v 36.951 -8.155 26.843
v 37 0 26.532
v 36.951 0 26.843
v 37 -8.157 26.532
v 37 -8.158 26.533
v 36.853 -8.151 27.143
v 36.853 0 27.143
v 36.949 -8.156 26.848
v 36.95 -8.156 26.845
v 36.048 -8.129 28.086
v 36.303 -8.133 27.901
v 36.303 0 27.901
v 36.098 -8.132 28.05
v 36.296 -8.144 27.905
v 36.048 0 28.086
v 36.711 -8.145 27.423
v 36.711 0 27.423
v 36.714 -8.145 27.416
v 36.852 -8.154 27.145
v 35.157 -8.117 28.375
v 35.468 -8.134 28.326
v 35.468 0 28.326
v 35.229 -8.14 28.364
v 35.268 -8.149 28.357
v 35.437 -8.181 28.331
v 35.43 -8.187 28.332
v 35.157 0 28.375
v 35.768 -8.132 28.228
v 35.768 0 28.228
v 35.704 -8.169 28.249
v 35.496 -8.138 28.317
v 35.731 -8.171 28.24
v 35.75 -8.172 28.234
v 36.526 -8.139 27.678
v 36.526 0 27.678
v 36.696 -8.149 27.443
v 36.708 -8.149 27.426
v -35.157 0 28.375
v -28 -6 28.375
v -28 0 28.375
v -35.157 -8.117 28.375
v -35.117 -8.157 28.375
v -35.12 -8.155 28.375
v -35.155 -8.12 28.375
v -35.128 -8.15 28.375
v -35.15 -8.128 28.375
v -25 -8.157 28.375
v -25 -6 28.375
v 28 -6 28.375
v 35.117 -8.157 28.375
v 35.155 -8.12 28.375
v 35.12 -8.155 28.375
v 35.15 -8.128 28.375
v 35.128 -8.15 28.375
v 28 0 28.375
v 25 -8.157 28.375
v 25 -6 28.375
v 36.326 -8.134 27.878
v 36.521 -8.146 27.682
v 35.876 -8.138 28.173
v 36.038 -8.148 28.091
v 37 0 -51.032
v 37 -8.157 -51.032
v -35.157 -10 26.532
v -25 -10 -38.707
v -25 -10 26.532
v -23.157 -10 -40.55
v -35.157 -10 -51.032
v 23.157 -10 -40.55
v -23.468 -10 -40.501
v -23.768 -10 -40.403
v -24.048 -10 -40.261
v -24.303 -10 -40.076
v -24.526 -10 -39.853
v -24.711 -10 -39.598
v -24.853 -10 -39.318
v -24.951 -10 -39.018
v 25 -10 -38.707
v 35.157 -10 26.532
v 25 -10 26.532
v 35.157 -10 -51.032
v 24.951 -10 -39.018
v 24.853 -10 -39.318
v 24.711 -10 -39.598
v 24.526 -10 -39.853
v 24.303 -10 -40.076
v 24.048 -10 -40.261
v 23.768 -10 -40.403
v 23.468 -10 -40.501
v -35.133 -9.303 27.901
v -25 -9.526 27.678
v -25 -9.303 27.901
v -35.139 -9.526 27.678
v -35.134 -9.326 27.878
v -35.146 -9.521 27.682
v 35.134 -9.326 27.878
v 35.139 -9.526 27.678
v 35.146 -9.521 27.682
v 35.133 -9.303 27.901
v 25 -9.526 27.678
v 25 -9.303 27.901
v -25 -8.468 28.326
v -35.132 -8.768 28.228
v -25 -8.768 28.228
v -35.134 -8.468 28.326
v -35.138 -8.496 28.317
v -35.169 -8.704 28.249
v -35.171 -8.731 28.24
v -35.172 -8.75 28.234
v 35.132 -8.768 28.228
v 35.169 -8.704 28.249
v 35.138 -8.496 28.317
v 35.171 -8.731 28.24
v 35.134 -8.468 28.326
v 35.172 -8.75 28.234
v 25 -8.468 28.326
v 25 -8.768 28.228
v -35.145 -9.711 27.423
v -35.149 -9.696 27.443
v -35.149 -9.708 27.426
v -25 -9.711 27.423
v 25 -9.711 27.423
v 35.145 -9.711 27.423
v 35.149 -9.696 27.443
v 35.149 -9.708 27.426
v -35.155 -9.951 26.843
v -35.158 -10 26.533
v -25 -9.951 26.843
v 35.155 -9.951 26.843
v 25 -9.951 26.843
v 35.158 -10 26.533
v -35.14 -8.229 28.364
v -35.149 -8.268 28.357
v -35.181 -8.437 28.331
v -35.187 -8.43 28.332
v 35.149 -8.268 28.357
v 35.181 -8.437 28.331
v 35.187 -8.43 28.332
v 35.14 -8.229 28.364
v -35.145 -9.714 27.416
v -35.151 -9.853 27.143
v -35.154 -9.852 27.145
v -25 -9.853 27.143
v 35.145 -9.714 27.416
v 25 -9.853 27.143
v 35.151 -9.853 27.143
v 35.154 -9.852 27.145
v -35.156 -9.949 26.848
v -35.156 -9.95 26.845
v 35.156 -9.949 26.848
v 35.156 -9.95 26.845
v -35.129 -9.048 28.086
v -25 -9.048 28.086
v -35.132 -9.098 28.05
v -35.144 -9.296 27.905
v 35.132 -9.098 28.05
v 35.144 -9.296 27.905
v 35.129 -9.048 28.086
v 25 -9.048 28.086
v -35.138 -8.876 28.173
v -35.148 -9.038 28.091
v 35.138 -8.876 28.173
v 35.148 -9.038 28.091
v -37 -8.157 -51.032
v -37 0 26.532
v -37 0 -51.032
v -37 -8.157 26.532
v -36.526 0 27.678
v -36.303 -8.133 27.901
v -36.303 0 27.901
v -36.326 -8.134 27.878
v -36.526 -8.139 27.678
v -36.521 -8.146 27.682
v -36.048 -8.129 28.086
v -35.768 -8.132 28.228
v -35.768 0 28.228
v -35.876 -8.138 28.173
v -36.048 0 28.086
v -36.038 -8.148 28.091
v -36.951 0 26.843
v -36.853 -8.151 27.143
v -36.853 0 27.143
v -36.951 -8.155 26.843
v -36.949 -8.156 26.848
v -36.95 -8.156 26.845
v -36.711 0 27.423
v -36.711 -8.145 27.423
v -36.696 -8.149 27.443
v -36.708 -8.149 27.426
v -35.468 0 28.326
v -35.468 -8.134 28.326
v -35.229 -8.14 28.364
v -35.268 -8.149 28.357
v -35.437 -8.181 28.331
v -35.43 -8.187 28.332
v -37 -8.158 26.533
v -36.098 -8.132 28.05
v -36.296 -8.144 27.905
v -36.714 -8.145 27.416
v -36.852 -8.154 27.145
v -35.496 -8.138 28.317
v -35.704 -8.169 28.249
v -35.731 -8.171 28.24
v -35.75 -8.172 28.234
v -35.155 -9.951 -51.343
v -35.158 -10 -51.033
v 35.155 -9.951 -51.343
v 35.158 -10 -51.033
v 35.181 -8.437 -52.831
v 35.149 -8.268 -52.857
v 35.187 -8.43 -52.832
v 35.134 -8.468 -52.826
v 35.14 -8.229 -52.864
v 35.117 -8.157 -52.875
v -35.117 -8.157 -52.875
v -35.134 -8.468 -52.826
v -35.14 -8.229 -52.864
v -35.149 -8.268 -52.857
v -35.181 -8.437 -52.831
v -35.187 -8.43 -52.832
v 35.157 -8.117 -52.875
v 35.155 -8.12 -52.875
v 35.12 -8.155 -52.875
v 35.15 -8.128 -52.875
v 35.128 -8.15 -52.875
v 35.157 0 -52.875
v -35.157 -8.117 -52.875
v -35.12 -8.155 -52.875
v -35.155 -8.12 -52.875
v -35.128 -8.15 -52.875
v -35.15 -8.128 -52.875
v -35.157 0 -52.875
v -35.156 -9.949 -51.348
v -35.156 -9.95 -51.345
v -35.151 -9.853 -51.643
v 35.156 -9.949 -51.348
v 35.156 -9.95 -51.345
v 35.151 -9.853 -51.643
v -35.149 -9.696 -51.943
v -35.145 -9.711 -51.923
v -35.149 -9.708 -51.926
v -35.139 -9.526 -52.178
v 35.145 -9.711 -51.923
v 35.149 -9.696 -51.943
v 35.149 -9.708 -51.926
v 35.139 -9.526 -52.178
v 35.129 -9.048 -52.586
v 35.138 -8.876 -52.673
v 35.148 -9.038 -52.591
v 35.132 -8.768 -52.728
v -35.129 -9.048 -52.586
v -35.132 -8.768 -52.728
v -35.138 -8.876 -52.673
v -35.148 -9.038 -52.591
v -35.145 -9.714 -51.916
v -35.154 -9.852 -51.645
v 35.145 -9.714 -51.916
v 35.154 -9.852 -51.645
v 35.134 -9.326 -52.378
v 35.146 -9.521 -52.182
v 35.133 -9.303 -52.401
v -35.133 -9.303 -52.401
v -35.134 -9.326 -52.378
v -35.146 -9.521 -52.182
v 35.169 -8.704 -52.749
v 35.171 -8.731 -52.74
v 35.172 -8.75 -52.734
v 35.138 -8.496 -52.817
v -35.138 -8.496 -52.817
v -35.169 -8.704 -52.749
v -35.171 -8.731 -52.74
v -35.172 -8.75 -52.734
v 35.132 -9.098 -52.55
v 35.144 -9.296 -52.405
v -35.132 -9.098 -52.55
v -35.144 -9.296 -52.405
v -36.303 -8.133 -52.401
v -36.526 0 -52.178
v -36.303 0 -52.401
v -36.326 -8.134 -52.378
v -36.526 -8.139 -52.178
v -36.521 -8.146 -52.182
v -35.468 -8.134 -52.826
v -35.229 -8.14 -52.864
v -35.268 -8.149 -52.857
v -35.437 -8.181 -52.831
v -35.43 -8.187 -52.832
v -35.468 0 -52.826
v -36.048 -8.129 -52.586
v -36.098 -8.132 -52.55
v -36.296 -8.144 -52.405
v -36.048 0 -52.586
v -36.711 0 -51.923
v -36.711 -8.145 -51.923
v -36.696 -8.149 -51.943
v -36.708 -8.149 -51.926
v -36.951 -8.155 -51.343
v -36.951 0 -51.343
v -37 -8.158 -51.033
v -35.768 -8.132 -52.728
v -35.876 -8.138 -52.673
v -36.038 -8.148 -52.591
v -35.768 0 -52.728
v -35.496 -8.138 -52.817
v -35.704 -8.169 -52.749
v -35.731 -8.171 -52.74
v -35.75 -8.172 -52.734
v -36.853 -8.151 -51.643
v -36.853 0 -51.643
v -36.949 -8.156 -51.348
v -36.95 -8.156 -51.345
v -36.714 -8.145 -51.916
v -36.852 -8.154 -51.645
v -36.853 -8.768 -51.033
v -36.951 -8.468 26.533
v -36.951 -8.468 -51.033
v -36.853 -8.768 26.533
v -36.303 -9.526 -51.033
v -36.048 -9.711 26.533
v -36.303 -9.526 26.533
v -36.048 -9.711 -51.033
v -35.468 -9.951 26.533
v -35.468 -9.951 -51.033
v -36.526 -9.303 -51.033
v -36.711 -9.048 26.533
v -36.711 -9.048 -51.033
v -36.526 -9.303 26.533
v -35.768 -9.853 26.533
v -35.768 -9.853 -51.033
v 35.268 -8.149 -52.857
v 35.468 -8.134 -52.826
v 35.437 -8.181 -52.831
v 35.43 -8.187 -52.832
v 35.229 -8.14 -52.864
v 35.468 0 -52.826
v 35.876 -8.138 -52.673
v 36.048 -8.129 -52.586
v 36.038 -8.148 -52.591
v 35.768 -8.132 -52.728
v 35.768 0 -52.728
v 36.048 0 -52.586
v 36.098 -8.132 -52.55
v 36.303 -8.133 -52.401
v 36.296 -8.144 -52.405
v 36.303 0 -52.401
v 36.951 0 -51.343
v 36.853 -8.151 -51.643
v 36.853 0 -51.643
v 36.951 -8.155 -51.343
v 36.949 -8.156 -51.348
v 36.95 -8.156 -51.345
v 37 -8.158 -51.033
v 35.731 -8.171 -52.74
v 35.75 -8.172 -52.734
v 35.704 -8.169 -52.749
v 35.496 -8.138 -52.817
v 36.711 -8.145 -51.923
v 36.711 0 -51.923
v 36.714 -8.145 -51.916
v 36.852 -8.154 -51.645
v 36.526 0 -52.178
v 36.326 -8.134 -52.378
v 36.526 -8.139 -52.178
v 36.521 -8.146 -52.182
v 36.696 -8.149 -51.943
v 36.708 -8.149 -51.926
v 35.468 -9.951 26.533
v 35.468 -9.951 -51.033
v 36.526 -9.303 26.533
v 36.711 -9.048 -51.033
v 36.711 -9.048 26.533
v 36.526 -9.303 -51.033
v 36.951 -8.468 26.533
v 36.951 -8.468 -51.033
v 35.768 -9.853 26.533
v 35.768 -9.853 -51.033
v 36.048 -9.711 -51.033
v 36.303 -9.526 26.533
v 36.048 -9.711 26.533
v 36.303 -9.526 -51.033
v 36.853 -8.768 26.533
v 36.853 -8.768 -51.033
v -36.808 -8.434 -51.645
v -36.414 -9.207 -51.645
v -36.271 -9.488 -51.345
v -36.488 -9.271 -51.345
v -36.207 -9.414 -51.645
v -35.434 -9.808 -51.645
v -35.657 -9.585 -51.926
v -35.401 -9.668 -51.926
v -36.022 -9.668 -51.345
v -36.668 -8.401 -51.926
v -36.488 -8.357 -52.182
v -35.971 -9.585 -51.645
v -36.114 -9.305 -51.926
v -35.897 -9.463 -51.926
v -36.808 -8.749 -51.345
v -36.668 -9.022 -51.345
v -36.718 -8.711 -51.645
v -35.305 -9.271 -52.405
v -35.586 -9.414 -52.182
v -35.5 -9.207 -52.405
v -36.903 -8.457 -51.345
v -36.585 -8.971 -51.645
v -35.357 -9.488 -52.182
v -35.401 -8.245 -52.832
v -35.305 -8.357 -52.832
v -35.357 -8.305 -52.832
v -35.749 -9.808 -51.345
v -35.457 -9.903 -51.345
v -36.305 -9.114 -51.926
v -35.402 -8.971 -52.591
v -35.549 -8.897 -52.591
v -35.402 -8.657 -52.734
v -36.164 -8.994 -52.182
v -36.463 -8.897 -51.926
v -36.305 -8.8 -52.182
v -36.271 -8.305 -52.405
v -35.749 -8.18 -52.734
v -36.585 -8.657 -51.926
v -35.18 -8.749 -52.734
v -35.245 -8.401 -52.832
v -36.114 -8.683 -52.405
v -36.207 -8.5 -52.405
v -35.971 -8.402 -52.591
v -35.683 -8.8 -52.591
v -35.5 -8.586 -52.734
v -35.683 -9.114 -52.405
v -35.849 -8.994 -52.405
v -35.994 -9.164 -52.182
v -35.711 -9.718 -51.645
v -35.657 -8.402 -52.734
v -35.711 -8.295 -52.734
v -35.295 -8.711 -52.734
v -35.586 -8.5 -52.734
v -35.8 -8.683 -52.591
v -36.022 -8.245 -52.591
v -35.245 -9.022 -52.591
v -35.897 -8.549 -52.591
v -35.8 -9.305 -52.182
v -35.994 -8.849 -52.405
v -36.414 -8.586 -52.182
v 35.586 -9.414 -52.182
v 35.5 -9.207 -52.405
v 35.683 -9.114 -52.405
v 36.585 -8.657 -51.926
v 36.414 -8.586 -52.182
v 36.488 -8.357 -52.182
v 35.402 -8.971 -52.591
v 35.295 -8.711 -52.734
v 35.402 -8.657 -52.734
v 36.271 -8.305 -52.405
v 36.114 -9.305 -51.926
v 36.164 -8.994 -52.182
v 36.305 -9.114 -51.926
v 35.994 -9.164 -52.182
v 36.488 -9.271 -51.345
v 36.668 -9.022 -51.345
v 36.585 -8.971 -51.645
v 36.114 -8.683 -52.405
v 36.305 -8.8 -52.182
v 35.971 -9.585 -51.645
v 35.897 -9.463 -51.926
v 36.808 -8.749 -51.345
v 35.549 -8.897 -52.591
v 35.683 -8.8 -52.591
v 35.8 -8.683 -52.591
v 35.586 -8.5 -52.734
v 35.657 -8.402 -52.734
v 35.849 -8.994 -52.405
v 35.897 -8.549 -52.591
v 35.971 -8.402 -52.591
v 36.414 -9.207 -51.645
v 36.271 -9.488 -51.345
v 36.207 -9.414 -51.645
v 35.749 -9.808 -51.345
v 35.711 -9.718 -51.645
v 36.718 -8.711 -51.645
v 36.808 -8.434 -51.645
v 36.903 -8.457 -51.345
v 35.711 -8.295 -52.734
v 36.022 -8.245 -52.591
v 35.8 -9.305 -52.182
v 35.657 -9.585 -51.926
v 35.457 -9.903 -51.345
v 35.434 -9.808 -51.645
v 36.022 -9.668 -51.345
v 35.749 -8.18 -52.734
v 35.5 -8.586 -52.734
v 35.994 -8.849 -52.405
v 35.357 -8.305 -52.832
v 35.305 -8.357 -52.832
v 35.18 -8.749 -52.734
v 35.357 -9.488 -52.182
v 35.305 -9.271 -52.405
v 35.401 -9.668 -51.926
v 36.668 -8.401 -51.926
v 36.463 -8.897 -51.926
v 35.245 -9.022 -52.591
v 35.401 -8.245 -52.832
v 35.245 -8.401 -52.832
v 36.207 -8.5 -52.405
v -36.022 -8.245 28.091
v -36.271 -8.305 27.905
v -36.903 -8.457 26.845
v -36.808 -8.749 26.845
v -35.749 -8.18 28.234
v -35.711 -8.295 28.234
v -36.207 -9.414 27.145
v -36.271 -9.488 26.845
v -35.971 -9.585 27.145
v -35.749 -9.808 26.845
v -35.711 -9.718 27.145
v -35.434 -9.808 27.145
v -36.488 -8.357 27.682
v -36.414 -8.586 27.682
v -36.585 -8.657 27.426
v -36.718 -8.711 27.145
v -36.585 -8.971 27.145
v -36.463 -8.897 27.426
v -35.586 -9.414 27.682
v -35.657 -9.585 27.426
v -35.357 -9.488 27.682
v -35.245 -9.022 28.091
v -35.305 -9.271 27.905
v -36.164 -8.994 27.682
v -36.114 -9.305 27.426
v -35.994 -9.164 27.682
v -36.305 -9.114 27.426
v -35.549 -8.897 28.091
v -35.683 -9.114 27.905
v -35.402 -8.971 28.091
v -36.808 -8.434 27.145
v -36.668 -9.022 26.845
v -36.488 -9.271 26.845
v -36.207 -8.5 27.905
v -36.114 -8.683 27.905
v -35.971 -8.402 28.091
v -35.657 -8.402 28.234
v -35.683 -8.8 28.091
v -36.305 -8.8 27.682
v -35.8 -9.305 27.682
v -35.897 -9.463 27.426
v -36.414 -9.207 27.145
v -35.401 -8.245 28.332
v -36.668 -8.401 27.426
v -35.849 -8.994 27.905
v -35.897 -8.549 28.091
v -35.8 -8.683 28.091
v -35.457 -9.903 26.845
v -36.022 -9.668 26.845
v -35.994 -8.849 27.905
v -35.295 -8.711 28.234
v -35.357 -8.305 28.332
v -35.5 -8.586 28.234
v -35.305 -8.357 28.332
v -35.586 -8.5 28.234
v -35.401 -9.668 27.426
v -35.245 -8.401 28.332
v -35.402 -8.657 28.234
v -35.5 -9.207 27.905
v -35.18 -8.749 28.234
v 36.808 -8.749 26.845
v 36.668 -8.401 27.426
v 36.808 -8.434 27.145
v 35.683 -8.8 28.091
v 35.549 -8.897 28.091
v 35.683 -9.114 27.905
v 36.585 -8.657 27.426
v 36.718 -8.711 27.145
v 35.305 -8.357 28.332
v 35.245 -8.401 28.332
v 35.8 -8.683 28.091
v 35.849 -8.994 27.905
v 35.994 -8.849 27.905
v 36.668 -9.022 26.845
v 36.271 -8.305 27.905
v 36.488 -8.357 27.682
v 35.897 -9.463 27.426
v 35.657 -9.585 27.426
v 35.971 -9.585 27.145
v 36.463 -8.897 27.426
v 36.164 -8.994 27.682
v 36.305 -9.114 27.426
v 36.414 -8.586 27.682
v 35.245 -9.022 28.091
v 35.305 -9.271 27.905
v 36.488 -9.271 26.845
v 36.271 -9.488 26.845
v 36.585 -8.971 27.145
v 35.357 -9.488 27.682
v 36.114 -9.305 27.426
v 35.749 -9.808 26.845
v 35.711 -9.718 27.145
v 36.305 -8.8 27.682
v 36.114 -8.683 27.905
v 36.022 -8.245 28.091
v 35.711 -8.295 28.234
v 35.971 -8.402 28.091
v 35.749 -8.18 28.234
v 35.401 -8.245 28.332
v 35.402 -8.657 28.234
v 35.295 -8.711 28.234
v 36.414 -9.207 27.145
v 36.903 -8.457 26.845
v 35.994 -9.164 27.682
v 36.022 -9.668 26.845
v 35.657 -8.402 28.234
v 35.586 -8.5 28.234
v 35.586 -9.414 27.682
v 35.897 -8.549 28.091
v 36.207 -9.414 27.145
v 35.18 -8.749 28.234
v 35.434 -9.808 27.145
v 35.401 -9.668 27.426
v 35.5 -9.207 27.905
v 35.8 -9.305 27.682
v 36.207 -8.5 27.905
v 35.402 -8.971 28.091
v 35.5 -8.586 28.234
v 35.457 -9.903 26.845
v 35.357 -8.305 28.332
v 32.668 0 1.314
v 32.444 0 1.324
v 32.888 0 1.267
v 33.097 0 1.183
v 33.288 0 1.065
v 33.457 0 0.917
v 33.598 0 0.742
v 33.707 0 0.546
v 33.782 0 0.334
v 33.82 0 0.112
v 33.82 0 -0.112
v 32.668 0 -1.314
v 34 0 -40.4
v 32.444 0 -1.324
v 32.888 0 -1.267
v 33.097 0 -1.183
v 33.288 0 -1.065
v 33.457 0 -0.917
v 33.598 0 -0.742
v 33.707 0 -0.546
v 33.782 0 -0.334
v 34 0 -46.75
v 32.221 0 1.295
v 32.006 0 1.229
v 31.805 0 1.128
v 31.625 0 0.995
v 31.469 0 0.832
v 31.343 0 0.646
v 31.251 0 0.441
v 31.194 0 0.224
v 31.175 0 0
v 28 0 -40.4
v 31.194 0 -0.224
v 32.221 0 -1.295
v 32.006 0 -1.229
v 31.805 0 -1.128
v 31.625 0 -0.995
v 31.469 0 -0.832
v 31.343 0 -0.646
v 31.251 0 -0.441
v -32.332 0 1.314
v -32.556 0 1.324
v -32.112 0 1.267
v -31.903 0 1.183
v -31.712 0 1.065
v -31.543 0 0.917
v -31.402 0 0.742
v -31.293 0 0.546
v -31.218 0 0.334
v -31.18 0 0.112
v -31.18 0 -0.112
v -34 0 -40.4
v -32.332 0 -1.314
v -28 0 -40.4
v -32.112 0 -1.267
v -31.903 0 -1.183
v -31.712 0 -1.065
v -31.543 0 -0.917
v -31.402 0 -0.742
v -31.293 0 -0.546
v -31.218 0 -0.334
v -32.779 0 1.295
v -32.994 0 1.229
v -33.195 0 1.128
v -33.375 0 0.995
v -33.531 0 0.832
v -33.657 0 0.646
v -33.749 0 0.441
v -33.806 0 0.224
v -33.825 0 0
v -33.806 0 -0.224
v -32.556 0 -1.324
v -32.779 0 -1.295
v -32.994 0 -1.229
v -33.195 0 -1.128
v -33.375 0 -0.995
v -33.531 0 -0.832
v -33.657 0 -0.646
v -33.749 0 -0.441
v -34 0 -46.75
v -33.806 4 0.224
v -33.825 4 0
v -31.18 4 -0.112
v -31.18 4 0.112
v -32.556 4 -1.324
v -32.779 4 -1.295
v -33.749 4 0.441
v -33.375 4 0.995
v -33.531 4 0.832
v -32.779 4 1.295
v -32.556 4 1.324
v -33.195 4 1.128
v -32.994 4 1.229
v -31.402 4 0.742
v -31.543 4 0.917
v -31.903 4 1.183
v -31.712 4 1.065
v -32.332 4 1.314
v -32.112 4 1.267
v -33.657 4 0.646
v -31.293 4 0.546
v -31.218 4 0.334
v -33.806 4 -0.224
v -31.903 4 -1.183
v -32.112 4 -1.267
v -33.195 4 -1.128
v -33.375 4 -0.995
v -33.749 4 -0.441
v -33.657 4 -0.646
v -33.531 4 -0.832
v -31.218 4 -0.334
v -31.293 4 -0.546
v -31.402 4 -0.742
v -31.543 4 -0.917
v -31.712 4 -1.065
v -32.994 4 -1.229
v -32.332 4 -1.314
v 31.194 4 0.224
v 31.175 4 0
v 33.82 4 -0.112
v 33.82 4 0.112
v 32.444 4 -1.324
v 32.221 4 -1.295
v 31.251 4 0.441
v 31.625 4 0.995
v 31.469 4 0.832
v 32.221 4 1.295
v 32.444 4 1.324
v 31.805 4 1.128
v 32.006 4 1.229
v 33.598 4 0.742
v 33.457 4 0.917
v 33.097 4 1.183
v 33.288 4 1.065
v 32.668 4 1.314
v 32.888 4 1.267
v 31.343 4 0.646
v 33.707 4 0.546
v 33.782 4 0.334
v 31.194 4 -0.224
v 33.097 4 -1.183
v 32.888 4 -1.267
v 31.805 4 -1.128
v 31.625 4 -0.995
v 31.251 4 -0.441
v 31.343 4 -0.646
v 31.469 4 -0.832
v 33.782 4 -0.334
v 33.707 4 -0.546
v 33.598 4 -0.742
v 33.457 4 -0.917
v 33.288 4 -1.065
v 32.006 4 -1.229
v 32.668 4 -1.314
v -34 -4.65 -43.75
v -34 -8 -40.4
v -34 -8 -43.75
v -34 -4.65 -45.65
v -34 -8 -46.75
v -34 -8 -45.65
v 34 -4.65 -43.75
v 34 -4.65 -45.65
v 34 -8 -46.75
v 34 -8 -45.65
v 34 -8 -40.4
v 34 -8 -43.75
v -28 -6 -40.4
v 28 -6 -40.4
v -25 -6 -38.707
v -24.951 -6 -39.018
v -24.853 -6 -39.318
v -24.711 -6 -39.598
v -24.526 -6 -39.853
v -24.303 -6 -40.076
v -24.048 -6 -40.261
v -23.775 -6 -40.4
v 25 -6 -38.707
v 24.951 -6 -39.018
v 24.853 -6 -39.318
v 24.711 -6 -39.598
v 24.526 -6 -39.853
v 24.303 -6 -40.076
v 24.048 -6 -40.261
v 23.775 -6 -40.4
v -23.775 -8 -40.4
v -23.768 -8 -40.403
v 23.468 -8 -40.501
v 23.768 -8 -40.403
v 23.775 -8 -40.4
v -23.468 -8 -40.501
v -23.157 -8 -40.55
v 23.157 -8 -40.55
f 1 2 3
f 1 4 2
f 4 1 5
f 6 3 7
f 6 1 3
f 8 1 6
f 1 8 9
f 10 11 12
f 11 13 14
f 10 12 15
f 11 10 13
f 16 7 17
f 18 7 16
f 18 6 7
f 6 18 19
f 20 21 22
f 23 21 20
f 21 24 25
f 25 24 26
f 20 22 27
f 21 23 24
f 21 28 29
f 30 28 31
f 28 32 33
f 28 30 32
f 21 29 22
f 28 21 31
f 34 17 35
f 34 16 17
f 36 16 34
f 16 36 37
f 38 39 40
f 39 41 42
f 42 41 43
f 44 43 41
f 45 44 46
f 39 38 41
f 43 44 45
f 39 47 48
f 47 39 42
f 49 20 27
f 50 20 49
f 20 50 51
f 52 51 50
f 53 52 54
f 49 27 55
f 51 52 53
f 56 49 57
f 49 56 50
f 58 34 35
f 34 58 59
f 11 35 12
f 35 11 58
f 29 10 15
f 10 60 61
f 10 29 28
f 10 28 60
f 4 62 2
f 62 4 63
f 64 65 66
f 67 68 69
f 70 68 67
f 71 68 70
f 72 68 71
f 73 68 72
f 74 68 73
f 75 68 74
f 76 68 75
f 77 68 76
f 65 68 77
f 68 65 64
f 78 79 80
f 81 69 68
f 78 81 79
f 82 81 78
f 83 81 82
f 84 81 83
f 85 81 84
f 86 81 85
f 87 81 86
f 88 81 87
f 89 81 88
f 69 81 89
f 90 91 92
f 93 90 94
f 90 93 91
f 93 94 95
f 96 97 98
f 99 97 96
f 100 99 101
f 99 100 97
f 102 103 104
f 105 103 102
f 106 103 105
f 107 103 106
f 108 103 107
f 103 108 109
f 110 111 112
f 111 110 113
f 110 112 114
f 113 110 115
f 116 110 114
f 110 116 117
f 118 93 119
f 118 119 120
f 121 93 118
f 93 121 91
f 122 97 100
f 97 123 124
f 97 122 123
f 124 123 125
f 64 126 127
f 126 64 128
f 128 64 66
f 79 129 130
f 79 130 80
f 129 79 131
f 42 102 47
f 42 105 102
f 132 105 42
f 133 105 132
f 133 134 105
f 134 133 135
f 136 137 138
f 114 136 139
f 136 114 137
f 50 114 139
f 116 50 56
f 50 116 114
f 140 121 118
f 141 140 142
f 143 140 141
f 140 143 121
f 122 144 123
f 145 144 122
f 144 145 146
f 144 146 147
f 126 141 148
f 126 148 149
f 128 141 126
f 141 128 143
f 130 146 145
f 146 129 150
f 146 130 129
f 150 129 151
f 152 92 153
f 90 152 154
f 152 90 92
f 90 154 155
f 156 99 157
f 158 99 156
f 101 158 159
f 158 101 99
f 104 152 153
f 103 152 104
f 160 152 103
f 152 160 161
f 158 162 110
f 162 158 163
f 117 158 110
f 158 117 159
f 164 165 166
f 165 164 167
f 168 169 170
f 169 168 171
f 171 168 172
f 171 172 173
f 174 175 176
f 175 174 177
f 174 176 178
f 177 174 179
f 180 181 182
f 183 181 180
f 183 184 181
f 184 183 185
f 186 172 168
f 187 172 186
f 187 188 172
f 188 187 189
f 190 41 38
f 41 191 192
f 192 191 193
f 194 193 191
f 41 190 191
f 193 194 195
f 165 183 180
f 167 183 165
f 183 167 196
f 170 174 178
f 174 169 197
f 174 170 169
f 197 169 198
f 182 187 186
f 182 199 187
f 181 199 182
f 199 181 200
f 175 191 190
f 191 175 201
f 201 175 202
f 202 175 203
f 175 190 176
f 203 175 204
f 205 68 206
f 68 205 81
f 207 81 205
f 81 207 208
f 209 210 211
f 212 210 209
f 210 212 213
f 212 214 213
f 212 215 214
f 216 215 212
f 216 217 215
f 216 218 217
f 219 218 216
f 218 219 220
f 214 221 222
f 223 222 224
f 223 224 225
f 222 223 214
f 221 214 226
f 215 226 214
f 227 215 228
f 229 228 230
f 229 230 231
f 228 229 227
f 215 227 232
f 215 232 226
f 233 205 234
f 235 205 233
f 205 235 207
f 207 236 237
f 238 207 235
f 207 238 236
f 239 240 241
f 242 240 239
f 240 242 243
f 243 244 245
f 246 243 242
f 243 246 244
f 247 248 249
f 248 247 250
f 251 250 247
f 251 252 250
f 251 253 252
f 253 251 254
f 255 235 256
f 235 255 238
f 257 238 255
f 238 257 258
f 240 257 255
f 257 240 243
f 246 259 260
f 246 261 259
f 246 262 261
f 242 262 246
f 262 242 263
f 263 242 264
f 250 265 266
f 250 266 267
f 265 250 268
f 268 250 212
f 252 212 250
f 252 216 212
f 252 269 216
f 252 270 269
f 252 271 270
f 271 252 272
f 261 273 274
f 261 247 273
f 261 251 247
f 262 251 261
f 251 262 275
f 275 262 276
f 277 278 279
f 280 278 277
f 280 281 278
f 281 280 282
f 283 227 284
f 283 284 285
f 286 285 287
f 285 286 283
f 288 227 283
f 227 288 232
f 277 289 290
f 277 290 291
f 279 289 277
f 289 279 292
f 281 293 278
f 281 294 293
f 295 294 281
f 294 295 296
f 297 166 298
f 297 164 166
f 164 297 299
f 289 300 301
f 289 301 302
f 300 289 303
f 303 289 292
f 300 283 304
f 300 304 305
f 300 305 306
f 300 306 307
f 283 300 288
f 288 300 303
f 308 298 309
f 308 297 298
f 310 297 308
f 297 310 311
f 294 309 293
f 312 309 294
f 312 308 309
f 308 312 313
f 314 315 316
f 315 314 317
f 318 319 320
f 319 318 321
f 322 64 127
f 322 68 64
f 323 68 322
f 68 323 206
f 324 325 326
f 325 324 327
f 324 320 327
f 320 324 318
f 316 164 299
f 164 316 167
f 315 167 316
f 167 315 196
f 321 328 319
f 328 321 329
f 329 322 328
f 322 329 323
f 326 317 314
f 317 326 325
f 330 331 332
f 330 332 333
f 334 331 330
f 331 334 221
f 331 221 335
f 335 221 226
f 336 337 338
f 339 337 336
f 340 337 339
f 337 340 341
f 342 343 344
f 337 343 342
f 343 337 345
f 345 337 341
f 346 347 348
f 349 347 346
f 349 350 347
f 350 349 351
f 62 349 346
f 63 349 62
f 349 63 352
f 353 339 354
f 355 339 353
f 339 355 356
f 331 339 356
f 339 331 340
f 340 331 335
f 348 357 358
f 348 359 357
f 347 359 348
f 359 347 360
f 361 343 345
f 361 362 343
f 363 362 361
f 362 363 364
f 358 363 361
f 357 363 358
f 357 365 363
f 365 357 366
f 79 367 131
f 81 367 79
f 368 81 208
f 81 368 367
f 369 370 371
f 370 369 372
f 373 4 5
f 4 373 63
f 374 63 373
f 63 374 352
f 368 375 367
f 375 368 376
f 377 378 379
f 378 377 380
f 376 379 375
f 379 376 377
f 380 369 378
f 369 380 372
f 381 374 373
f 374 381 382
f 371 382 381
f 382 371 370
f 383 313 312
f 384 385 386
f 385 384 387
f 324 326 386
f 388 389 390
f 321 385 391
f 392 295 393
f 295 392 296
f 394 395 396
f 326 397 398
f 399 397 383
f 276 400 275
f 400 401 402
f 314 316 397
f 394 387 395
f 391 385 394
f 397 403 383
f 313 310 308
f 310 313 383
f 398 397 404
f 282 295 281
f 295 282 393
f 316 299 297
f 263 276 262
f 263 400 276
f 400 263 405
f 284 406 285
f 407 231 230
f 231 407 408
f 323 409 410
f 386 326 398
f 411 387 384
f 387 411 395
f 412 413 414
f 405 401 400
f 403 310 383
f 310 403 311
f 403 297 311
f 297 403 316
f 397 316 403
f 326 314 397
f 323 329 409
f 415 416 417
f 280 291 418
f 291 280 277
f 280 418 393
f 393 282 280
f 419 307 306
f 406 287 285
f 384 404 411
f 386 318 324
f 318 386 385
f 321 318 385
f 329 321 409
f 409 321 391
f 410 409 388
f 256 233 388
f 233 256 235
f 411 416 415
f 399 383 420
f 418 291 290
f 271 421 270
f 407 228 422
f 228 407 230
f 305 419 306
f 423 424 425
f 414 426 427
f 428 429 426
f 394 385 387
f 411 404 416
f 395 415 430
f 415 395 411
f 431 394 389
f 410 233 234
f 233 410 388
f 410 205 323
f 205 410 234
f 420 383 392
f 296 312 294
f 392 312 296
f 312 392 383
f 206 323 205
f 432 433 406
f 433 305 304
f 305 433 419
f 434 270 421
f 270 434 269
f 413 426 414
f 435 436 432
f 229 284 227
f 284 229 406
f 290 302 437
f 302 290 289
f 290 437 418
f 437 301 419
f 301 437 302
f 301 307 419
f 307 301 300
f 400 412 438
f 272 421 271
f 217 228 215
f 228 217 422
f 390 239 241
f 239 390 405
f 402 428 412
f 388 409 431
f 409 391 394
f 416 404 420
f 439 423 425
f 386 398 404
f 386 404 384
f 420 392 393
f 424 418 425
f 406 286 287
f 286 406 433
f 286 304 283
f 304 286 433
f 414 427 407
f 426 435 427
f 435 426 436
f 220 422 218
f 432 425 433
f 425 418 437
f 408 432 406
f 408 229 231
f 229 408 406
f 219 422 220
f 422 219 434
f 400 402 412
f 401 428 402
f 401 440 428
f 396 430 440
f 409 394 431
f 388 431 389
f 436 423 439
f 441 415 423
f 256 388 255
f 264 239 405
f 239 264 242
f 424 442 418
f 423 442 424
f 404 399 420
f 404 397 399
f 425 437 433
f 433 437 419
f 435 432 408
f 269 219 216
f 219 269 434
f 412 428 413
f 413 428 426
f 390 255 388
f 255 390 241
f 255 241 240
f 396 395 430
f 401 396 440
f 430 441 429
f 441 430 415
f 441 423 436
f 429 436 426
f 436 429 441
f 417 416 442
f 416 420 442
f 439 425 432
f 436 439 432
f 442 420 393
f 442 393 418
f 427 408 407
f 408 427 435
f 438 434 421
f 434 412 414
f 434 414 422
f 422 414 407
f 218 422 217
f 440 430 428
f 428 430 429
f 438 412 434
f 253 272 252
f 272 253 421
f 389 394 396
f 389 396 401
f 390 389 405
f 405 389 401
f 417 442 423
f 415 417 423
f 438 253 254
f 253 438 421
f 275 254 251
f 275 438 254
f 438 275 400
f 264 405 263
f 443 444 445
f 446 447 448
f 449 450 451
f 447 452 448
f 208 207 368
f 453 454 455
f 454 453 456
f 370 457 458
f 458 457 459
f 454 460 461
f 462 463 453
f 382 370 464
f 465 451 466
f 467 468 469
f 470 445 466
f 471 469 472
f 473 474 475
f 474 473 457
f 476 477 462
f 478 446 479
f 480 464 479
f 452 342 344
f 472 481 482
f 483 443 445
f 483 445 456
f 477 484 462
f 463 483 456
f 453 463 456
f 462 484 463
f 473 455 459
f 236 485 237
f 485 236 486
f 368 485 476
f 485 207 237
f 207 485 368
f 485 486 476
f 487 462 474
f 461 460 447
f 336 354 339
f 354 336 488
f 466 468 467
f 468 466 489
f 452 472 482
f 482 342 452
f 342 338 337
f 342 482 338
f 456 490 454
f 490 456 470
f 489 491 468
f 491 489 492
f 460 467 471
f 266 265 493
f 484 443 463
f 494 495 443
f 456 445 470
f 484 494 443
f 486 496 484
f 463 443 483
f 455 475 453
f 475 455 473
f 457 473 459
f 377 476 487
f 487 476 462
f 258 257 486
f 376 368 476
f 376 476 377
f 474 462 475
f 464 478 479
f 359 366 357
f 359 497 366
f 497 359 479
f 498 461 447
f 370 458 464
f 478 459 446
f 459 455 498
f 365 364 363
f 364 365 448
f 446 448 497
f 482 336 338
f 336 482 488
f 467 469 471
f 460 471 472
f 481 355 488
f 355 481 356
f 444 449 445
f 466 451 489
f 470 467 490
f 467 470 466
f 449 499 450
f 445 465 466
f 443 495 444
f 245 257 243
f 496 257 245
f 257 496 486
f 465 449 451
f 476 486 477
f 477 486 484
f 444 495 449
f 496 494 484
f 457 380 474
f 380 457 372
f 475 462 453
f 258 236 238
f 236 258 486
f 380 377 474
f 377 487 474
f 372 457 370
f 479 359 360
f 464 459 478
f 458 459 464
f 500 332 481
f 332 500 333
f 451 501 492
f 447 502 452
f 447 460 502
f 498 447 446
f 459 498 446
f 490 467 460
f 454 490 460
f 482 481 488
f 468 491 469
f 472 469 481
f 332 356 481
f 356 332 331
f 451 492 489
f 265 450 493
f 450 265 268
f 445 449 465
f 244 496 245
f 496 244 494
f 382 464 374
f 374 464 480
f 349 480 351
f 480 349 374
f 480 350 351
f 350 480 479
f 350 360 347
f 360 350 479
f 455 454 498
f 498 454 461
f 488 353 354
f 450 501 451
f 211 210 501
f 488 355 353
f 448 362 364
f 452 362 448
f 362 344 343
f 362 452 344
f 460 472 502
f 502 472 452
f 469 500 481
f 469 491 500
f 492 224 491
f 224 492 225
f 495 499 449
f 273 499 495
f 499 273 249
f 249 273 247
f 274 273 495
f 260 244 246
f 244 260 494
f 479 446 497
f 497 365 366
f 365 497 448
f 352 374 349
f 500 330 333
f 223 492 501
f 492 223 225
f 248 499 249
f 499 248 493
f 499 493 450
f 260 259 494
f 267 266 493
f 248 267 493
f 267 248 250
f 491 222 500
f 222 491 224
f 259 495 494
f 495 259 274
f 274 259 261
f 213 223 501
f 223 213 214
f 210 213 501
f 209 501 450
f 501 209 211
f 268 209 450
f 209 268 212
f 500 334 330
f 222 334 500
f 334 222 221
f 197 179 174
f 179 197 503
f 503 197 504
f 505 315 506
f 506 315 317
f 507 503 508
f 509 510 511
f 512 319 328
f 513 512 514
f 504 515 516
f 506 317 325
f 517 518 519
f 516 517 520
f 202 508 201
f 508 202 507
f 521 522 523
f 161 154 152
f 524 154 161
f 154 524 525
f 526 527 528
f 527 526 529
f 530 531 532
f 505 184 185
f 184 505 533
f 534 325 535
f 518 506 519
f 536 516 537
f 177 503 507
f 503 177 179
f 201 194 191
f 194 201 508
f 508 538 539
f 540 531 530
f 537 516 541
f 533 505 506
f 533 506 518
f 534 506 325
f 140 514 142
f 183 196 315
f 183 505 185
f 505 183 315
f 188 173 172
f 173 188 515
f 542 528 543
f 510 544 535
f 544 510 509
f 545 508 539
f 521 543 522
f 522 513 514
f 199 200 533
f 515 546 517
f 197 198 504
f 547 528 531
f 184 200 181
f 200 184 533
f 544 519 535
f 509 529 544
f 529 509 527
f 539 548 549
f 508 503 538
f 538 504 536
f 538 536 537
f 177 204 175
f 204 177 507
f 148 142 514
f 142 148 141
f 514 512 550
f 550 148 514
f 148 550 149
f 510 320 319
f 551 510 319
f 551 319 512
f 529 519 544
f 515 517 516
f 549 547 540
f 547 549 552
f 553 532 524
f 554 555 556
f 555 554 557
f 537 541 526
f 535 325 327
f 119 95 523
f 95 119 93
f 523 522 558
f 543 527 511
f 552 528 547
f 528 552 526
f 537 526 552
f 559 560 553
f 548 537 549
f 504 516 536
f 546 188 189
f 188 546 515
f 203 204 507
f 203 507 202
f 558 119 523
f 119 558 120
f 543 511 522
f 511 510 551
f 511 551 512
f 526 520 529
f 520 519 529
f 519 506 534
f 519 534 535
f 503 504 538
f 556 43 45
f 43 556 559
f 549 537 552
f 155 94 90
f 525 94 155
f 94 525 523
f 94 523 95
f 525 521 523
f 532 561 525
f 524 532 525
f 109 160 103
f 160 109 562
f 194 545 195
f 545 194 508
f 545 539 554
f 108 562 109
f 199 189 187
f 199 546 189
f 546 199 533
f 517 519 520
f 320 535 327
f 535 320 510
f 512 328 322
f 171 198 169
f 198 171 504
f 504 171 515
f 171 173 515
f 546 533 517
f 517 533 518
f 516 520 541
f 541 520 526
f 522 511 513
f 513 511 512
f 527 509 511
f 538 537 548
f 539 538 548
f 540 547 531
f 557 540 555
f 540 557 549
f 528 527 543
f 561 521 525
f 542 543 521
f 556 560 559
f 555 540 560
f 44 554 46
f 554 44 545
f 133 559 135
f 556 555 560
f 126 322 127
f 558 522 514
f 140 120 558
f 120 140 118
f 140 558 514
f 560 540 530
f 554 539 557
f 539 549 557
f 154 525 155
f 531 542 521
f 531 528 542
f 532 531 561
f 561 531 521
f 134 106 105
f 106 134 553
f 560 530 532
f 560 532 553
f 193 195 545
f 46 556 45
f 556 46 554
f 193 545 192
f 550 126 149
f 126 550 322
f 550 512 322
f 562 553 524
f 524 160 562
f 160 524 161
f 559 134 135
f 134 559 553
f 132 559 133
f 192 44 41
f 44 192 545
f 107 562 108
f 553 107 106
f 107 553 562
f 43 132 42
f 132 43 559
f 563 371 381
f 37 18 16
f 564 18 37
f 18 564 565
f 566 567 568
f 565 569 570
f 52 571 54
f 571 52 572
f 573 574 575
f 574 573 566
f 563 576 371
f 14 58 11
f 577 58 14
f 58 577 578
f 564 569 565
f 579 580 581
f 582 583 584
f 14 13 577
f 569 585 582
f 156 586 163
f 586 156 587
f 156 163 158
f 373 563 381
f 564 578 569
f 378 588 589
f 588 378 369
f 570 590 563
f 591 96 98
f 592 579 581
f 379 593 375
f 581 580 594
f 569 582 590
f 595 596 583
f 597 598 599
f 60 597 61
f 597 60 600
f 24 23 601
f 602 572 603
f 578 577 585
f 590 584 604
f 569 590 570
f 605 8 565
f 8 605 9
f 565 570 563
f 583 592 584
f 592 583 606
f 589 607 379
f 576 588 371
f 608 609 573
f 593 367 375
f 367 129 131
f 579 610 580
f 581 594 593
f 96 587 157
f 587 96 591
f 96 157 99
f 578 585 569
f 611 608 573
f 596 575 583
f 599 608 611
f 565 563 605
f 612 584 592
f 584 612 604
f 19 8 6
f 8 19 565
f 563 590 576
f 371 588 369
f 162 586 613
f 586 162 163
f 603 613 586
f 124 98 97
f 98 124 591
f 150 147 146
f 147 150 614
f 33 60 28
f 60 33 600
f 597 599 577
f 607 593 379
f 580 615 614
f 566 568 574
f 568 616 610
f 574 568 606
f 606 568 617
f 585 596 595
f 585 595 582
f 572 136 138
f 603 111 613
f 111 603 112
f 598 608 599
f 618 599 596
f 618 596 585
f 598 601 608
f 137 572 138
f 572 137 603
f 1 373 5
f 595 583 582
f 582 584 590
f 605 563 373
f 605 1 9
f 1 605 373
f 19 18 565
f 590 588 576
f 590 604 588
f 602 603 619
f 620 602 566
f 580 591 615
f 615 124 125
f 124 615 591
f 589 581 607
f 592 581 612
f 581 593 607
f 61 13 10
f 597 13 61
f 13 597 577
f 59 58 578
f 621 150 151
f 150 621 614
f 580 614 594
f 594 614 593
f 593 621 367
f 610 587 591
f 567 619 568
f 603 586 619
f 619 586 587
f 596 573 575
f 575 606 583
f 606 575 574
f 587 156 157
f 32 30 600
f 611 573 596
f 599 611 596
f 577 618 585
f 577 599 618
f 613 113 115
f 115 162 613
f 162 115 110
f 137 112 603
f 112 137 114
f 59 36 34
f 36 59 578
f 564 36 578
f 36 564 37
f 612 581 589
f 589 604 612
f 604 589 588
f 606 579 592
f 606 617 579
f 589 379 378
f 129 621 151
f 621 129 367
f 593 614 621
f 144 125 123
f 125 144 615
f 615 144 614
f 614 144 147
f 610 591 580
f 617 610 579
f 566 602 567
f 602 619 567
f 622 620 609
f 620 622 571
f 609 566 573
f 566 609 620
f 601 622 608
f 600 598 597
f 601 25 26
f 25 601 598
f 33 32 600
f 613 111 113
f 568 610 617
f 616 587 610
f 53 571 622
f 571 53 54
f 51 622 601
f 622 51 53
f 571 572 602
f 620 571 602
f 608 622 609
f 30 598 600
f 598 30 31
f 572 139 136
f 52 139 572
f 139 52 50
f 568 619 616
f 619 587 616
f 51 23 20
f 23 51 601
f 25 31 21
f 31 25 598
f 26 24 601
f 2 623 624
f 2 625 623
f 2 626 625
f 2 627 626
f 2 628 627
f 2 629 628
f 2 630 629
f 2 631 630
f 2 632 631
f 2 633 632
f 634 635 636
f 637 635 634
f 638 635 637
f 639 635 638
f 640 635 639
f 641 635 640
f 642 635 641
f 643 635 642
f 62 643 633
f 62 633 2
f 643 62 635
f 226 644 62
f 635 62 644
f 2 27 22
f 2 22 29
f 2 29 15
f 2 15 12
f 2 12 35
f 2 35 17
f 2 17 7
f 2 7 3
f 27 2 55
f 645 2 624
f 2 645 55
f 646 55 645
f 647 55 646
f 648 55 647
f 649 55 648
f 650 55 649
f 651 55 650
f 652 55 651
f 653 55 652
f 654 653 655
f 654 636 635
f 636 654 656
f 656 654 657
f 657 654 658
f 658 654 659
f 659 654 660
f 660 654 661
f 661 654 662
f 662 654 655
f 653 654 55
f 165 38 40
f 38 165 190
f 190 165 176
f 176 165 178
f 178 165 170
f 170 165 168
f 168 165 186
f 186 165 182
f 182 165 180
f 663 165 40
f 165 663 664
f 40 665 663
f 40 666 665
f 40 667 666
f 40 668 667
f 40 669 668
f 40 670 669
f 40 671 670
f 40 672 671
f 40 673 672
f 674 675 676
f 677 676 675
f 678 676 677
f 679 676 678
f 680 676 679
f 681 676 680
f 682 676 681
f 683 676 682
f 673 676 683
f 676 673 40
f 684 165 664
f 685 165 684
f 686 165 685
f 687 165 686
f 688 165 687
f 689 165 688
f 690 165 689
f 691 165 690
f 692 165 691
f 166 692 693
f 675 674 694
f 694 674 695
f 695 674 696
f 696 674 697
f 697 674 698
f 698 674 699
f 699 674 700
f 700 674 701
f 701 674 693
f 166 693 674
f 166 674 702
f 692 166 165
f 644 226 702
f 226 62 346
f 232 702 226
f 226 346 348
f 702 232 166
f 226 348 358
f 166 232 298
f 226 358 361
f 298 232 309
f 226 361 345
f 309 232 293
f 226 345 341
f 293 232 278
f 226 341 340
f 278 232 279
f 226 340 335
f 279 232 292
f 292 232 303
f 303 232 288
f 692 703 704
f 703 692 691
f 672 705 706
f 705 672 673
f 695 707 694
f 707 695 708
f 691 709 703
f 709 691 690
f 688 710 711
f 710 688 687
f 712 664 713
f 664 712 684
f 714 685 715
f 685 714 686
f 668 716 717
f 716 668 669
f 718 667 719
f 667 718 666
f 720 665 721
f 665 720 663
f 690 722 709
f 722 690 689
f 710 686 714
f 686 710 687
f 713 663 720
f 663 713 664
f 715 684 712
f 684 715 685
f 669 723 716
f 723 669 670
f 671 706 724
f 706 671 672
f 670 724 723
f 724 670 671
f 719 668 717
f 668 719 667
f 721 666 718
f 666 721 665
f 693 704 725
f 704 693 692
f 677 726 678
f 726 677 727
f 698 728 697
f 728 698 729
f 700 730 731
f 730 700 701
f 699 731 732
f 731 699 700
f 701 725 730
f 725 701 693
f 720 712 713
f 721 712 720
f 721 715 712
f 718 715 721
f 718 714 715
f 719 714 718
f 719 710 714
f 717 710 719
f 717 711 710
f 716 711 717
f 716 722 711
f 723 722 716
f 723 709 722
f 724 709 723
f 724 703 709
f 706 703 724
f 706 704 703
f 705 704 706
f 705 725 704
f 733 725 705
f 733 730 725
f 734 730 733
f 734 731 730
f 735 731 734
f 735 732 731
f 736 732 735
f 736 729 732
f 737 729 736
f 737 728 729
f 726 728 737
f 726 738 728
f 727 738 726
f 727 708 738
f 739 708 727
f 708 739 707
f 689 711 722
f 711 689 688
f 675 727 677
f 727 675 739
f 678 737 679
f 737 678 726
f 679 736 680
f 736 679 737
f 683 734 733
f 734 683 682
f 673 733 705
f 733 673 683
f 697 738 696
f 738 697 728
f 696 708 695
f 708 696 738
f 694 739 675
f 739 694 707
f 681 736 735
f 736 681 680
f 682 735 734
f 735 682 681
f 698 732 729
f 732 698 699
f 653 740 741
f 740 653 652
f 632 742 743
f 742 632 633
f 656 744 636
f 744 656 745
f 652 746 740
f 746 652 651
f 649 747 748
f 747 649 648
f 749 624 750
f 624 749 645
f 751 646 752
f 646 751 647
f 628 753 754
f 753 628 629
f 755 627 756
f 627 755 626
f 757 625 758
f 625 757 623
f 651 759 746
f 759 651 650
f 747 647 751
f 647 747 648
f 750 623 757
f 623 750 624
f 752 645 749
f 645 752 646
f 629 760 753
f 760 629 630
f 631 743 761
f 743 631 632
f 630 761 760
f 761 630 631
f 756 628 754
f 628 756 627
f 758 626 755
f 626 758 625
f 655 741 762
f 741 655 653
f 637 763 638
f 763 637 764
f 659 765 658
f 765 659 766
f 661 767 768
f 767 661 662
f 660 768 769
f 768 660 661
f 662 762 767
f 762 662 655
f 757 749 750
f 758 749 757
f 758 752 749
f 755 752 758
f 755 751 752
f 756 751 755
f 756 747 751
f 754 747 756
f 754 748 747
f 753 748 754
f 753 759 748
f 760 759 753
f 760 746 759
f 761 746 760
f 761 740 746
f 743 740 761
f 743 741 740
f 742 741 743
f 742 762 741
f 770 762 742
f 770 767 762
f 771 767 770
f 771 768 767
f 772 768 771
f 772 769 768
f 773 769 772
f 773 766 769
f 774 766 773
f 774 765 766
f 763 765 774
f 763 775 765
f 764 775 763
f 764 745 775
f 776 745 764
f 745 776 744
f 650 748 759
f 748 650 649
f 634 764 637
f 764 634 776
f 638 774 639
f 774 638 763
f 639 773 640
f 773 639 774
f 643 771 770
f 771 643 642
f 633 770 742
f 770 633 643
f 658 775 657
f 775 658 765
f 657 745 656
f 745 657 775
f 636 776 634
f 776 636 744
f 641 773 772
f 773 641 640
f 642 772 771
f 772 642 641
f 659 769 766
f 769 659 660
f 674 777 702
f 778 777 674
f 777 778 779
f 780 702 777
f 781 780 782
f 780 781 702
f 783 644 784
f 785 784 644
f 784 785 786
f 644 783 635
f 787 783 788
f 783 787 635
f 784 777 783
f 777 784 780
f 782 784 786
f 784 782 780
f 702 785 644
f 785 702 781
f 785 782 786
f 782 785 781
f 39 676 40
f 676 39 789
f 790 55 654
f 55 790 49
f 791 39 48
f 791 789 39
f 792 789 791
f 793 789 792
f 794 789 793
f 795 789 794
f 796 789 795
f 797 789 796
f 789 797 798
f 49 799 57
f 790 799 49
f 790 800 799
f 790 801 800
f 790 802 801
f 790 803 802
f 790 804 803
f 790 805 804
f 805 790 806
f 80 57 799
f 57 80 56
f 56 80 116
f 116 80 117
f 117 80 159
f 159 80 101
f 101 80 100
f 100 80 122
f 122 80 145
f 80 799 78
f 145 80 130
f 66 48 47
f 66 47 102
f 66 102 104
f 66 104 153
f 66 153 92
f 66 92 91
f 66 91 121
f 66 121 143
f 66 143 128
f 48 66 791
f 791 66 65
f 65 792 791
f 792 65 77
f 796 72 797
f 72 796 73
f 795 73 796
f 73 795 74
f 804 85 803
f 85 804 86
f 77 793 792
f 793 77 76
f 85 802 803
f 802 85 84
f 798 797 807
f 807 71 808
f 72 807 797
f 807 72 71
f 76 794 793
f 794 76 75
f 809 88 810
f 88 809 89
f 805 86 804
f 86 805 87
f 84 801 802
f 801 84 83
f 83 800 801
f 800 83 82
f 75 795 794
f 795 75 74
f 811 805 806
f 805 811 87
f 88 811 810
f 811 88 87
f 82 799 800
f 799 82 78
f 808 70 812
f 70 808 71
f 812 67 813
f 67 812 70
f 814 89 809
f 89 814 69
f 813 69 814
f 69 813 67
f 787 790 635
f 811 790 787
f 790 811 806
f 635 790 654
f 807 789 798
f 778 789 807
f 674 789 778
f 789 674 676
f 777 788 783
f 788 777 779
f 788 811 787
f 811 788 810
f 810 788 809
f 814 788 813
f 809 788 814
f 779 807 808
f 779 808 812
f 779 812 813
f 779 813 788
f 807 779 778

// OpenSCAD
include <BOSL/constants.scad>
use <BOSL/shapes.scad>
use <BOSL/transforms.scad>

$fn=37;

laser_cut = false;

difference_fudge = 0.1;
extrusion_fudge = 0.1;

acrylic_thickness = 3.25;

corner_fillet = 2;

card_width = 54;
card_height = 81;
card_thickness = 4;
card_slot_play_x = 2;
card_slot_play_y = 2;
card_slot_play_z = 12;

strip_width = 12;
strip_length = card_width;
strip_height = 1;
led_width = 5.2;
led_height = 2;

led_wire_allotment = 7;

back_wall_thickness = 5.5;
back_plate_thickness = 3;
front_wall_thickness = 4;
side_wall_thickness = 6;
base_height = 10;
base_thickness = 13;

card_support_width = 2;

reader_thickness = 1;
reader_width = 40;
reader_height = 60;
reader_blob_width = 4.5;
reader_blob_height = 13;
reader_blob_thickness = 5;
reader_slot_play = 1;

reader_post_drop_top = 6.5;
reader_post_width_top = 25;
reader_post_width_bottom = 34.5;
reader_post_drop_bottom = 16;
rfid_post_diam = 2.75;
rfid_post_height = 4;
rfid_wiring_allowance = 7;

led_offset_y = -(strip_width + back_wall_thickness) / 2;
strip_box_height = strip_height + led_height + acrylic_thickness;

slot_width = card_width + card_slot_play_x;
slot_height = card_height;
slot_thickness = card_thickness + card_slot_play_y;

holder_thickness = slot_thickness + front_wall_thickness;
holder_width = strip_length + (led_wire_allotment + side_wall_thickness / 2) * 2;
holder_height = card_height + strip_box_height + side_wall_thickness 
    - card_slot_play_z;
    

card_y_offset = -card_thickness / 2;

* card();
* rfid_reader();
* translate([0, 0, -card_height / 2]) led_strip();

if(laser_cut) {
    projection(cut = true) 
    {
        rotate([-90, 0, 0])
        {
            difference()
            {
                holder_body();
                alignment_pins();
                acrylic_slot();
                led_slot();
            }
        }
    }
}
else 
{
    card_holder();
}

module card_holder()
{
    union()
    {
        difference()
        {
            holder_body();
            card_slot();
            card_cutout();
            acrylic_slot();
            led_slot();
        }
        alignment_pins();
    }
}

module alignment_pins()
{
    alignment_width = holder_width / 2 - (holder_width - slot_width) / 4;
    echo(alignment_width=alignment_width * 2);
    echo(alignment_diam=rfid_post_diam);
    
    // alignment pins
    color("magenta")
    translate([-alignment_width, 0, 0])
    ycyl(l=rfid_post_height * 2, d=rfid_post_diam - extrusion_fudge);

    color("magenta")
    translate([alignment_width, 0, 0])
    ycyl(l=rfid_post_height * 2, d=rfid_post_diam - extrusion_fudge);
}

module holder_body()
{
    translate([0, 
        -holder_thickness / 2, 
        -(strip_box_height + side_wall_thickness)
    ])
    cuboid(
        [
            holder_width,
            holder_thickness, 
            holder_height
        ], 
        fillet=corner_fillet
        , edges=EDGES_FRONT + EDGES_Y_ALL
    );
}

module card_slot()
{
    color("magenta")
    translate([
        0, 
        -slot_thickness / 2 + difference_fudge / 2,
        -difference_fudge / 2
    ])
        cuboid(
        [
            slot_width,
            slot_thickness + difference_fudge,
            slot_height + difference_fudge
        ]
    );
}


module card_cutout()
{
    // This is the cutout to make the card visible, it is inset 
    // from the card edges by card_support_width on either side 
    // so the card won't fall out
    
    color("magenta")
    translate([
        0,
        -holder_thickness / 2,
        -difference_fudge / 2
    ])
    cuboid(
        [
            card_width - card_support_width * 2, 
            holder_thickness * 2, 
            card_height
        ], 
        fillet=corner_fillet
    );
}


module acrylic_slot()
{
    // This is the cutout that holds the LED acrylic, it is open to the back
    // for wiring access through the board
    
    color("magenta")
    translate([
        0, 
        card_y_offset, 
        -card_height / 2 - acrylic_thickness / 2 + difference_fudge / 2
    ])
    cuboid([
        strip_length + led_wire_allotment * 2, 
        strip_width, 
        acrylic_thickness + difference_fudge
    ]);
}

module led_slot()
{
    // This is the cutout that holds the LED strip, it is open to the back
    // for wiring access through the board
    
    union()
    {
        color("magenta")
        translate([
            0, 
            card_y_offset, 
            -card_height / 2 - acrylic_thickness - led_height / 2
                + difference_fudge / 2
        ])
        cuboid([
            strip_length + led_wire_allotment * 2, 
            led_width + difference_fudge, 
            led_height + difference_fudge
        ]);

        color("magenta")
        translate([
            0, 
            card_y_offset, 
            -card_height / 2 - acrylic_thickness - led_height - strip_height / 2
                + difference_fudge / 2
        ])
        cuboid([
            strip_length + led_wire_allotment * 2, 
            strip_width, 
            strip_height + difference_fudge
        ]);
    }
}

module card()
{
    color("red", 0.25)
    translate([0, card_y_offset, 0])
    cuboid([card_width, card_thickness, card_height]);
}

module led_strip()
{
    translate([0, card_y_offset, -strip_box_height])
    {
        color("black")
        upcube([strip_length, strip_width, strip_height]);
        
        color("white")
        translate([0, 0, strip_height])
        upcube([strip_length, led_width, led_height]);

        translate([0, 0, strip_height + led_height])
        color("#aaaaaa", 0.3)
        upcube([strip_length, strip_width, acrylic_thickness]);
    }
}
